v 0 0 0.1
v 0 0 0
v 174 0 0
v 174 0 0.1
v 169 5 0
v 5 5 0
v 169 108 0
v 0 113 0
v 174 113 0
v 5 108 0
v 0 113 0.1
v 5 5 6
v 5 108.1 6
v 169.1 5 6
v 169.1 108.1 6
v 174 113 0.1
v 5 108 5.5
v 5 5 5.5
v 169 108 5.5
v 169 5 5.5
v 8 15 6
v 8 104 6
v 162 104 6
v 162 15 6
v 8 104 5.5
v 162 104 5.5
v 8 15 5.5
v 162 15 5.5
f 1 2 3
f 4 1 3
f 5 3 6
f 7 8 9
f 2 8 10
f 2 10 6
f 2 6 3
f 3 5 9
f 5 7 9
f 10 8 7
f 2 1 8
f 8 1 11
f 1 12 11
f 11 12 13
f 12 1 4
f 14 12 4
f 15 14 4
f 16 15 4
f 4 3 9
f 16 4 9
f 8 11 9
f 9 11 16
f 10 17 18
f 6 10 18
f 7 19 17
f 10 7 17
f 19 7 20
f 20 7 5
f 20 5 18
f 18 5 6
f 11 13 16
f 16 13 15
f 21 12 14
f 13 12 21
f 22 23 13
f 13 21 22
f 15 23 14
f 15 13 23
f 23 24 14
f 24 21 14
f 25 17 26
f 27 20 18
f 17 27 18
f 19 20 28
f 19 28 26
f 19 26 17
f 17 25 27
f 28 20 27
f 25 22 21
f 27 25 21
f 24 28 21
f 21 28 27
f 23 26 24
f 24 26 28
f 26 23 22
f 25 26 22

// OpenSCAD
/* (c) 2012 - Koen Kooi */

lcd_width = 164;
lcd_length = 103;
lcd_height = 6;

edge_width = 10;

left_overlap = 3;
right_overlap = 7;
top_overlap = 4;
bottom_overlap = 10;

module lcd(w, l, h) {
	cube([w,l,h]);
	translate(v=[left_overlap, bottom_overlap, h/2]) cube([w - left_overlap - right_overlap,l - top_overlap - bottom_overlap,h]);
}

module bezel() {
	difference() {
		hull() {
			cube([lcd_width + edge_width, lcd_length + edge_width, 0.1]);
			translate(v=[edge_width/2, edge_width/2, 0]) cube([lcd_width + 0.1, lcd_length + 0.1, lcd_height]);
		}
		translate(v=[edge_width/2, edge_width/2, -0.5]) lcd(lcd_width, lcd_length, lcd_height);
	}

}



bezel();
